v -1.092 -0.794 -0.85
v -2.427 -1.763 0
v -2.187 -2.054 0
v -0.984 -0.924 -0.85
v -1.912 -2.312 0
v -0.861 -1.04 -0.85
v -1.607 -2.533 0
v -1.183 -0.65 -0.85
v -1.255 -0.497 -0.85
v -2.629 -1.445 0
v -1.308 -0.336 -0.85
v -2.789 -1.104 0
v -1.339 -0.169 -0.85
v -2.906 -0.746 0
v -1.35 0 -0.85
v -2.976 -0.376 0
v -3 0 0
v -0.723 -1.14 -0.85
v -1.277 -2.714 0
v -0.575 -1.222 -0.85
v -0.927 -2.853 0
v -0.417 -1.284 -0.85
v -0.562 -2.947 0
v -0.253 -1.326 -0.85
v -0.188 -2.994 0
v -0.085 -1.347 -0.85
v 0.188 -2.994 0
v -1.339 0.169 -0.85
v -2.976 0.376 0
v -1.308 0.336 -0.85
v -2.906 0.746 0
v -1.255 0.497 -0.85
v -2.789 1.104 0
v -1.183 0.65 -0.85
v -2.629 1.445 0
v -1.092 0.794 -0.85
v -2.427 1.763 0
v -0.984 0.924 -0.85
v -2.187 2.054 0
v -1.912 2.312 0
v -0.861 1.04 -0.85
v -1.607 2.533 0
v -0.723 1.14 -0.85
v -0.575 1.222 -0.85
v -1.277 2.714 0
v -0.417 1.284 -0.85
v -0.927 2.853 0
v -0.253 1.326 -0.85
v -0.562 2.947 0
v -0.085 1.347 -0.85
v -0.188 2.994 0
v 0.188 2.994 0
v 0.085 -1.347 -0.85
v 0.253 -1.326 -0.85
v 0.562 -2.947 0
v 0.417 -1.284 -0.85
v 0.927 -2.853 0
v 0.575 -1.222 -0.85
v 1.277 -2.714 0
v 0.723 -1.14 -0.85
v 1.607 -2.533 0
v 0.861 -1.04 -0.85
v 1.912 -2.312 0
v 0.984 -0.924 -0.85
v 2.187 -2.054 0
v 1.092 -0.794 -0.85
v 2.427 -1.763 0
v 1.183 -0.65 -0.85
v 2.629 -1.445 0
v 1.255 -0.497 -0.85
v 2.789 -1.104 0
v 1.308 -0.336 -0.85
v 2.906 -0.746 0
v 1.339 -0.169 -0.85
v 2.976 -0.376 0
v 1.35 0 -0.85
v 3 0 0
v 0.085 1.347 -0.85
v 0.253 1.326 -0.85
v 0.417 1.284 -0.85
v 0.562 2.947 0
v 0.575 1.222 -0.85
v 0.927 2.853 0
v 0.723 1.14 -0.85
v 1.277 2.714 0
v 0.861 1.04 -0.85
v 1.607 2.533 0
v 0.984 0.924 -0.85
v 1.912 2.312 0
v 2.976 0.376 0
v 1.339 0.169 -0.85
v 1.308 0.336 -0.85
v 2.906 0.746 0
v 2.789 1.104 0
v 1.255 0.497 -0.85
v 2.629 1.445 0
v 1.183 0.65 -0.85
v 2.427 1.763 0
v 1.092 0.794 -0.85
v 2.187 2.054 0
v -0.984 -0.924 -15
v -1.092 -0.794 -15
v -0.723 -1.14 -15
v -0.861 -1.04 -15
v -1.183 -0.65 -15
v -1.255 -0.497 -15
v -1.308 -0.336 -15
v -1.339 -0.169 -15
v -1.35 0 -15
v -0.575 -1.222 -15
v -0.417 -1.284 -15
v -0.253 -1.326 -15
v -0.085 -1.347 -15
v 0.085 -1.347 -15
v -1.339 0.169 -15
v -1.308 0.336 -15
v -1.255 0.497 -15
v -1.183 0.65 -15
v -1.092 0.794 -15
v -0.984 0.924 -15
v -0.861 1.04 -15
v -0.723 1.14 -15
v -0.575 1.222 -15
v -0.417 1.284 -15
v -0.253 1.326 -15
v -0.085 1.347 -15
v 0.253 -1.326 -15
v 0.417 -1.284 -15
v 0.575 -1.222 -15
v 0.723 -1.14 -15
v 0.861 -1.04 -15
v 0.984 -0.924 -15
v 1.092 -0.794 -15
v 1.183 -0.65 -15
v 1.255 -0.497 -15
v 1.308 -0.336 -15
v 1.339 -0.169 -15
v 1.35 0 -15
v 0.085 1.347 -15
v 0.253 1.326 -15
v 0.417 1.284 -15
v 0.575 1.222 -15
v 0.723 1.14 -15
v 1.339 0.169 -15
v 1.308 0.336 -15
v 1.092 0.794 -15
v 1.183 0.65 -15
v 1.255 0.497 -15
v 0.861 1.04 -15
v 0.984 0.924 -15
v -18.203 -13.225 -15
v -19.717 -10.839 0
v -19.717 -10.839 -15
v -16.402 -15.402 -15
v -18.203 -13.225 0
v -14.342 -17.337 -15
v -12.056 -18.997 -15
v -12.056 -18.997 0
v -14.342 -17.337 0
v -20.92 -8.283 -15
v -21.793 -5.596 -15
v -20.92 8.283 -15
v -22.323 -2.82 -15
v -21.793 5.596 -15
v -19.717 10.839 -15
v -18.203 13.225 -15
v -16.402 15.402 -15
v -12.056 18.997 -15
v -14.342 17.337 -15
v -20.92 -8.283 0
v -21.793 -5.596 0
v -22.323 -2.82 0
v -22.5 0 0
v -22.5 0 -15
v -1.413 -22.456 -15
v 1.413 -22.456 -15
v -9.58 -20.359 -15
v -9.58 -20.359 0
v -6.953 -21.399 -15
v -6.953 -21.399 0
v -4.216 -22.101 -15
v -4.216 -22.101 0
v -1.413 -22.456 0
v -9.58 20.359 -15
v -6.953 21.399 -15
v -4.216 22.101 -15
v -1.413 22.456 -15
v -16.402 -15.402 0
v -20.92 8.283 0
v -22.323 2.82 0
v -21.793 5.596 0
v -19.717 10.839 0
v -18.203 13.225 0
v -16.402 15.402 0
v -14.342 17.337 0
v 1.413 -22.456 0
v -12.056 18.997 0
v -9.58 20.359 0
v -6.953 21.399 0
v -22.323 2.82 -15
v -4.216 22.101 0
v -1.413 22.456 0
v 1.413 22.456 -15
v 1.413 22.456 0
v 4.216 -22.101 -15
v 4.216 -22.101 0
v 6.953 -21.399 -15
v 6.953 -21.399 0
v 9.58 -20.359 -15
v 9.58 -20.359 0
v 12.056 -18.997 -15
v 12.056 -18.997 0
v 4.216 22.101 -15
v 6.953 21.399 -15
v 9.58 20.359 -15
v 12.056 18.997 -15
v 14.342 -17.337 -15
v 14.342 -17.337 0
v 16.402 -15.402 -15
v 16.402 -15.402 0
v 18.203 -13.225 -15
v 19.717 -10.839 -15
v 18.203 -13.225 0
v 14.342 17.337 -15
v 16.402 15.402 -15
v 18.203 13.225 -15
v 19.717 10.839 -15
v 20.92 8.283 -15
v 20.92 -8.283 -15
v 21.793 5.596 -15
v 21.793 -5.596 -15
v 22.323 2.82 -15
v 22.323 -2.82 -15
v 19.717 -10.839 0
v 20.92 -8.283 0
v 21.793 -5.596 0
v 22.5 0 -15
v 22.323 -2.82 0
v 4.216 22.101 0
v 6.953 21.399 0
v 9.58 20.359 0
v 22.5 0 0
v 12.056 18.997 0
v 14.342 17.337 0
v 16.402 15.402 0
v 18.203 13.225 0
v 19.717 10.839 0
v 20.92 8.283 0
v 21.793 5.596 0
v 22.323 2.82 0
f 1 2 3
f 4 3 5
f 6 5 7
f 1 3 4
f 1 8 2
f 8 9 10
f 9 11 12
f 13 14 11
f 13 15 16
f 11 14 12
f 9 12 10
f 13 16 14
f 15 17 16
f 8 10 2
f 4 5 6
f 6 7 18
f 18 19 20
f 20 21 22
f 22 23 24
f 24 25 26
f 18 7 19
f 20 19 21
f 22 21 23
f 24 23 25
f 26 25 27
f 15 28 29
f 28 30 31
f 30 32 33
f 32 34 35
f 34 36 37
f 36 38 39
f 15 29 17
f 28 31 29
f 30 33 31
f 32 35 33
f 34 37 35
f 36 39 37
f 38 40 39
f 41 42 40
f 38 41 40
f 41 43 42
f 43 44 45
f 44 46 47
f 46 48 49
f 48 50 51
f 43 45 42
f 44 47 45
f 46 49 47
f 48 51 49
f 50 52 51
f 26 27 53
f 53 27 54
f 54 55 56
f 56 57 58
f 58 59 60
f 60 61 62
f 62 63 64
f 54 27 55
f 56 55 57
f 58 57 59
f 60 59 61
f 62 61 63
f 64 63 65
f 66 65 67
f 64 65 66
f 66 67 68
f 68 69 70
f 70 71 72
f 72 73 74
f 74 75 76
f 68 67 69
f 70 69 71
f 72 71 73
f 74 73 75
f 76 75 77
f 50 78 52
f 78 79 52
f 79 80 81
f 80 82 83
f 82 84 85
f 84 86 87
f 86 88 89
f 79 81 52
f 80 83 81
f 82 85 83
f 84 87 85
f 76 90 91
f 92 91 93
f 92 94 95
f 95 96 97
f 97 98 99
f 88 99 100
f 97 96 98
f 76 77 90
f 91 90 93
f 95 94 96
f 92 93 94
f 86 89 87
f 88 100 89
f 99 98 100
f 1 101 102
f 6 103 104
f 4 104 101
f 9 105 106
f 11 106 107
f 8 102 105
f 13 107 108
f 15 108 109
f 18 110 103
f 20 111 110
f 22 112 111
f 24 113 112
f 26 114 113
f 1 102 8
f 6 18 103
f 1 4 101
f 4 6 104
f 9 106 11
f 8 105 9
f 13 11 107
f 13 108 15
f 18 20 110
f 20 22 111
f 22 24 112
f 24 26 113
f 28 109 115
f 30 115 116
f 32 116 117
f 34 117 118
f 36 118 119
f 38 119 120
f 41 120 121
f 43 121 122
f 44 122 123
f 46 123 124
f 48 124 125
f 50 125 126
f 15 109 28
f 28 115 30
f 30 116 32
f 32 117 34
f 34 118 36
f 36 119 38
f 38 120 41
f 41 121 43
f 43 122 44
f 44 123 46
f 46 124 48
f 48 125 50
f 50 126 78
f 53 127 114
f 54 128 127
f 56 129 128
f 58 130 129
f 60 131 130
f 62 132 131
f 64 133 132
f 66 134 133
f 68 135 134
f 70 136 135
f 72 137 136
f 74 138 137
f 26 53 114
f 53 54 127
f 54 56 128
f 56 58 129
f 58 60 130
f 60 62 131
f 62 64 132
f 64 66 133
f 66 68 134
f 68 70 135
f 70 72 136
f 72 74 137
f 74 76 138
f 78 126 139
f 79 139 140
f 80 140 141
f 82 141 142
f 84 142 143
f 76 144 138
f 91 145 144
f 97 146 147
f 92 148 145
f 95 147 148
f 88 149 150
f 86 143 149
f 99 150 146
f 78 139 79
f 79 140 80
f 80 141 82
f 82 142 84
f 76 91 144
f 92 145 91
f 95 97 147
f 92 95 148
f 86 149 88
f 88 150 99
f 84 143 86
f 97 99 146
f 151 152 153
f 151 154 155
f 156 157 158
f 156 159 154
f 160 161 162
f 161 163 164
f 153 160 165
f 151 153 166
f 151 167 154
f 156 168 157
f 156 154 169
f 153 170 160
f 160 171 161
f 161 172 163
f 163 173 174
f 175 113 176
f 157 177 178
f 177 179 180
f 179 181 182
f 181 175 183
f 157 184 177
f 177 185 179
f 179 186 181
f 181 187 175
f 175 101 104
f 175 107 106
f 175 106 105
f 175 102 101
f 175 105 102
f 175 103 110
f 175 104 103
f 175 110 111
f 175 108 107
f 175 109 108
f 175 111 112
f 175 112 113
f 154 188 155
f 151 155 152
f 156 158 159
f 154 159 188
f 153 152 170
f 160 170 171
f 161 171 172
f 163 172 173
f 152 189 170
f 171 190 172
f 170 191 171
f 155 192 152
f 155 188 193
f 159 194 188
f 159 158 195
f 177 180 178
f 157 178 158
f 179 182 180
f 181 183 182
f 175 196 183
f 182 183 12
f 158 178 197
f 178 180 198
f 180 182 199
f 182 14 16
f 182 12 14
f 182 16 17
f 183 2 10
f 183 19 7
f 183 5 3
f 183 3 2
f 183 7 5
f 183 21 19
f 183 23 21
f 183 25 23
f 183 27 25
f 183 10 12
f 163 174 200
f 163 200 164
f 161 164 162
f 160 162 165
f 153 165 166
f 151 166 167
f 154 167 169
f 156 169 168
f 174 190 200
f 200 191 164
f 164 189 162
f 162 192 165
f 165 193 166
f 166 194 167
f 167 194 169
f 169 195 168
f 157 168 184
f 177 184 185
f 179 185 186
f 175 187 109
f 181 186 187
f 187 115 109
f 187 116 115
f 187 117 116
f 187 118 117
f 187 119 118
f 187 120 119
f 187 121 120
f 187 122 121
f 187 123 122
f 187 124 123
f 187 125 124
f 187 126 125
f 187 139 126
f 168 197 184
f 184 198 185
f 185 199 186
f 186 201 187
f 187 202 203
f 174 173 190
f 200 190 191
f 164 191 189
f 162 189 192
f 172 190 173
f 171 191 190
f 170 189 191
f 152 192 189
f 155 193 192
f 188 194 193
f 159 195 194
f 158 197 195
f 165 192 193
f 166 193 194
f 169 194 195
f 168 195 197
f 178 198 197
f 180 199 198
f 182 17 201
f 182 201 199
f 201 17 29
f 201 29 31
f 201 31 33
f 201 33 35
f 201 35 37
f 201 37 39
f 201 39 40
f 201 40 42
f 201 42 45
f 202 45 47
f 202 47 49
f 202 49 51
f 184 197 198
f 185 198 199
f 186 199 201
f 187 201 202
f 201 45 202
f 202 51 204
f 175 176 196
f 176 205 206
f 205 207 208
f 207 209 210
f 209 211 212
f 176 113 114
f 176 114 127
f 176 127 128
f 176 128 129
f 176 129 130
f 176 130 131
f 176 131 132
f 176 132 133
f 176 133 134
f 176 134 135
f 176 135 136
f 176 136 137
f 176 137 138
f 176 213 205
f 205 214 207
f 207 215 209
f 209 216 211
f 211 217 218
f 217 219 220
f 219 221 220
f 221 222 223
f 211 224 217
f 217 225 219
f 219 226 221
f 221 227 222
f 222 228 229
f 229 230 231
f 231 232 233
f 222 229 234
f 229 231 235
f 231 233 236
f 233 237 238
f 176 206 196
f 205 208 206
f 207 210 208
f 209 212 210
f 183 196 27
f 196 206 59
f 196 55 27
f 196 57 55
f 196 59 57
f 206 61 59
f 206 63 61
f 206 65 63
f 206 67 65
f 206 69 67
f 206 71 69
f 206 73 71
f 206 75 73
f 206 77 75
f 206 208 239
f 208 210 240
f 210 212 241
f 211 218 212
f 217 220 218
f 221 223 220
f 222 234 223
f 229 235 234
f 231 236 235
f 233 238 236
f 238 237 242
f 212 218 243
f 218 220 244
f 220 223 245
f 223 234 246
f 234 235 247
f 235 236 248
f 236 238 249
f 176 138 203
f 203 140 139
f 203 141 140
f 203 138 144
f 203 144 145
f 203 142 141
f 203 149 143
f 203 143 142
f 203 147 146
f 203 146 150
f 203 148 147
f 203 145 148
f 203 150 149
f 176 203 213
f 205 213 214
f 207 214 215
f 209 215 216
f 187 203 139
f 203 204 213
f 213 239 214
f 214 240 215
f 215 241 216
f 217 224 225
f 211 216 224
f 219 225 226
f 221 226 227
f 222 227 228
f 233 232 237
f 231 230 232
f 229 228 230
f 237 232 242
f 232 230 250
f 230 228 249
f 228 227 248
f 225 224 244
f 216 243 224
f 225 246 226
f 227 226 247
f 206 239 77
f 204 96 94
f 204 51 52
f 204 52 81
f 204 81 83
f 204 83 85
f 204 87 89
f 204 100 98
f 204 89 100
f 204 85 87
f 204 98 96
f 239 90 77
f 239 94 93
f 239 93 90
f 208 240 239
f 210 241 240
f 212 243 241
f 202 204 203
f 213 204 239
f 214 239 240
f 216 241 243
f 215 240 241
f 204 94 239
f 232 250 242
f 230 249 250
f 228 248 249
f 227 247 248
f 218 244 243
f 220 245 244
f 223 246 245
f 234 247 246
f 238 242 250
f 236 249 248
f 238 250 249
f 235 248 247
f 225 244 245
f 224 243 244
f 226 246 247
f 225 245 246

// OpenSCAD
$fn = 50;

difference() {
	union() {
		translate(v = [0, 0, -15.0]) {
			cylinder(h = 15, r = 22.5);
		}
	}
	union() {
		translate(v = [0, 0, 0]) {
			rotate(a = [0, 0, 0]) {
				difference() {
					union() {
						translate(v = [0, 0, -18.0]) {
							cylinder(h = 18, r = 1.0);
						}
						translate(v = [0, 0, -0.85]) {
							cylinder(h = 0.85, r1 = 1.35, r2 = 3.0);
						}
						translate(v = [0, 0, -18.0]) {
							cylinder(h = 18, r = 1.35);
						}
						translate(v = [0, 0, -18.0]) {
							cylinder(h = 18, r = 1.0);
						}
					}
					union();
				}
			}
		}
	}
}
